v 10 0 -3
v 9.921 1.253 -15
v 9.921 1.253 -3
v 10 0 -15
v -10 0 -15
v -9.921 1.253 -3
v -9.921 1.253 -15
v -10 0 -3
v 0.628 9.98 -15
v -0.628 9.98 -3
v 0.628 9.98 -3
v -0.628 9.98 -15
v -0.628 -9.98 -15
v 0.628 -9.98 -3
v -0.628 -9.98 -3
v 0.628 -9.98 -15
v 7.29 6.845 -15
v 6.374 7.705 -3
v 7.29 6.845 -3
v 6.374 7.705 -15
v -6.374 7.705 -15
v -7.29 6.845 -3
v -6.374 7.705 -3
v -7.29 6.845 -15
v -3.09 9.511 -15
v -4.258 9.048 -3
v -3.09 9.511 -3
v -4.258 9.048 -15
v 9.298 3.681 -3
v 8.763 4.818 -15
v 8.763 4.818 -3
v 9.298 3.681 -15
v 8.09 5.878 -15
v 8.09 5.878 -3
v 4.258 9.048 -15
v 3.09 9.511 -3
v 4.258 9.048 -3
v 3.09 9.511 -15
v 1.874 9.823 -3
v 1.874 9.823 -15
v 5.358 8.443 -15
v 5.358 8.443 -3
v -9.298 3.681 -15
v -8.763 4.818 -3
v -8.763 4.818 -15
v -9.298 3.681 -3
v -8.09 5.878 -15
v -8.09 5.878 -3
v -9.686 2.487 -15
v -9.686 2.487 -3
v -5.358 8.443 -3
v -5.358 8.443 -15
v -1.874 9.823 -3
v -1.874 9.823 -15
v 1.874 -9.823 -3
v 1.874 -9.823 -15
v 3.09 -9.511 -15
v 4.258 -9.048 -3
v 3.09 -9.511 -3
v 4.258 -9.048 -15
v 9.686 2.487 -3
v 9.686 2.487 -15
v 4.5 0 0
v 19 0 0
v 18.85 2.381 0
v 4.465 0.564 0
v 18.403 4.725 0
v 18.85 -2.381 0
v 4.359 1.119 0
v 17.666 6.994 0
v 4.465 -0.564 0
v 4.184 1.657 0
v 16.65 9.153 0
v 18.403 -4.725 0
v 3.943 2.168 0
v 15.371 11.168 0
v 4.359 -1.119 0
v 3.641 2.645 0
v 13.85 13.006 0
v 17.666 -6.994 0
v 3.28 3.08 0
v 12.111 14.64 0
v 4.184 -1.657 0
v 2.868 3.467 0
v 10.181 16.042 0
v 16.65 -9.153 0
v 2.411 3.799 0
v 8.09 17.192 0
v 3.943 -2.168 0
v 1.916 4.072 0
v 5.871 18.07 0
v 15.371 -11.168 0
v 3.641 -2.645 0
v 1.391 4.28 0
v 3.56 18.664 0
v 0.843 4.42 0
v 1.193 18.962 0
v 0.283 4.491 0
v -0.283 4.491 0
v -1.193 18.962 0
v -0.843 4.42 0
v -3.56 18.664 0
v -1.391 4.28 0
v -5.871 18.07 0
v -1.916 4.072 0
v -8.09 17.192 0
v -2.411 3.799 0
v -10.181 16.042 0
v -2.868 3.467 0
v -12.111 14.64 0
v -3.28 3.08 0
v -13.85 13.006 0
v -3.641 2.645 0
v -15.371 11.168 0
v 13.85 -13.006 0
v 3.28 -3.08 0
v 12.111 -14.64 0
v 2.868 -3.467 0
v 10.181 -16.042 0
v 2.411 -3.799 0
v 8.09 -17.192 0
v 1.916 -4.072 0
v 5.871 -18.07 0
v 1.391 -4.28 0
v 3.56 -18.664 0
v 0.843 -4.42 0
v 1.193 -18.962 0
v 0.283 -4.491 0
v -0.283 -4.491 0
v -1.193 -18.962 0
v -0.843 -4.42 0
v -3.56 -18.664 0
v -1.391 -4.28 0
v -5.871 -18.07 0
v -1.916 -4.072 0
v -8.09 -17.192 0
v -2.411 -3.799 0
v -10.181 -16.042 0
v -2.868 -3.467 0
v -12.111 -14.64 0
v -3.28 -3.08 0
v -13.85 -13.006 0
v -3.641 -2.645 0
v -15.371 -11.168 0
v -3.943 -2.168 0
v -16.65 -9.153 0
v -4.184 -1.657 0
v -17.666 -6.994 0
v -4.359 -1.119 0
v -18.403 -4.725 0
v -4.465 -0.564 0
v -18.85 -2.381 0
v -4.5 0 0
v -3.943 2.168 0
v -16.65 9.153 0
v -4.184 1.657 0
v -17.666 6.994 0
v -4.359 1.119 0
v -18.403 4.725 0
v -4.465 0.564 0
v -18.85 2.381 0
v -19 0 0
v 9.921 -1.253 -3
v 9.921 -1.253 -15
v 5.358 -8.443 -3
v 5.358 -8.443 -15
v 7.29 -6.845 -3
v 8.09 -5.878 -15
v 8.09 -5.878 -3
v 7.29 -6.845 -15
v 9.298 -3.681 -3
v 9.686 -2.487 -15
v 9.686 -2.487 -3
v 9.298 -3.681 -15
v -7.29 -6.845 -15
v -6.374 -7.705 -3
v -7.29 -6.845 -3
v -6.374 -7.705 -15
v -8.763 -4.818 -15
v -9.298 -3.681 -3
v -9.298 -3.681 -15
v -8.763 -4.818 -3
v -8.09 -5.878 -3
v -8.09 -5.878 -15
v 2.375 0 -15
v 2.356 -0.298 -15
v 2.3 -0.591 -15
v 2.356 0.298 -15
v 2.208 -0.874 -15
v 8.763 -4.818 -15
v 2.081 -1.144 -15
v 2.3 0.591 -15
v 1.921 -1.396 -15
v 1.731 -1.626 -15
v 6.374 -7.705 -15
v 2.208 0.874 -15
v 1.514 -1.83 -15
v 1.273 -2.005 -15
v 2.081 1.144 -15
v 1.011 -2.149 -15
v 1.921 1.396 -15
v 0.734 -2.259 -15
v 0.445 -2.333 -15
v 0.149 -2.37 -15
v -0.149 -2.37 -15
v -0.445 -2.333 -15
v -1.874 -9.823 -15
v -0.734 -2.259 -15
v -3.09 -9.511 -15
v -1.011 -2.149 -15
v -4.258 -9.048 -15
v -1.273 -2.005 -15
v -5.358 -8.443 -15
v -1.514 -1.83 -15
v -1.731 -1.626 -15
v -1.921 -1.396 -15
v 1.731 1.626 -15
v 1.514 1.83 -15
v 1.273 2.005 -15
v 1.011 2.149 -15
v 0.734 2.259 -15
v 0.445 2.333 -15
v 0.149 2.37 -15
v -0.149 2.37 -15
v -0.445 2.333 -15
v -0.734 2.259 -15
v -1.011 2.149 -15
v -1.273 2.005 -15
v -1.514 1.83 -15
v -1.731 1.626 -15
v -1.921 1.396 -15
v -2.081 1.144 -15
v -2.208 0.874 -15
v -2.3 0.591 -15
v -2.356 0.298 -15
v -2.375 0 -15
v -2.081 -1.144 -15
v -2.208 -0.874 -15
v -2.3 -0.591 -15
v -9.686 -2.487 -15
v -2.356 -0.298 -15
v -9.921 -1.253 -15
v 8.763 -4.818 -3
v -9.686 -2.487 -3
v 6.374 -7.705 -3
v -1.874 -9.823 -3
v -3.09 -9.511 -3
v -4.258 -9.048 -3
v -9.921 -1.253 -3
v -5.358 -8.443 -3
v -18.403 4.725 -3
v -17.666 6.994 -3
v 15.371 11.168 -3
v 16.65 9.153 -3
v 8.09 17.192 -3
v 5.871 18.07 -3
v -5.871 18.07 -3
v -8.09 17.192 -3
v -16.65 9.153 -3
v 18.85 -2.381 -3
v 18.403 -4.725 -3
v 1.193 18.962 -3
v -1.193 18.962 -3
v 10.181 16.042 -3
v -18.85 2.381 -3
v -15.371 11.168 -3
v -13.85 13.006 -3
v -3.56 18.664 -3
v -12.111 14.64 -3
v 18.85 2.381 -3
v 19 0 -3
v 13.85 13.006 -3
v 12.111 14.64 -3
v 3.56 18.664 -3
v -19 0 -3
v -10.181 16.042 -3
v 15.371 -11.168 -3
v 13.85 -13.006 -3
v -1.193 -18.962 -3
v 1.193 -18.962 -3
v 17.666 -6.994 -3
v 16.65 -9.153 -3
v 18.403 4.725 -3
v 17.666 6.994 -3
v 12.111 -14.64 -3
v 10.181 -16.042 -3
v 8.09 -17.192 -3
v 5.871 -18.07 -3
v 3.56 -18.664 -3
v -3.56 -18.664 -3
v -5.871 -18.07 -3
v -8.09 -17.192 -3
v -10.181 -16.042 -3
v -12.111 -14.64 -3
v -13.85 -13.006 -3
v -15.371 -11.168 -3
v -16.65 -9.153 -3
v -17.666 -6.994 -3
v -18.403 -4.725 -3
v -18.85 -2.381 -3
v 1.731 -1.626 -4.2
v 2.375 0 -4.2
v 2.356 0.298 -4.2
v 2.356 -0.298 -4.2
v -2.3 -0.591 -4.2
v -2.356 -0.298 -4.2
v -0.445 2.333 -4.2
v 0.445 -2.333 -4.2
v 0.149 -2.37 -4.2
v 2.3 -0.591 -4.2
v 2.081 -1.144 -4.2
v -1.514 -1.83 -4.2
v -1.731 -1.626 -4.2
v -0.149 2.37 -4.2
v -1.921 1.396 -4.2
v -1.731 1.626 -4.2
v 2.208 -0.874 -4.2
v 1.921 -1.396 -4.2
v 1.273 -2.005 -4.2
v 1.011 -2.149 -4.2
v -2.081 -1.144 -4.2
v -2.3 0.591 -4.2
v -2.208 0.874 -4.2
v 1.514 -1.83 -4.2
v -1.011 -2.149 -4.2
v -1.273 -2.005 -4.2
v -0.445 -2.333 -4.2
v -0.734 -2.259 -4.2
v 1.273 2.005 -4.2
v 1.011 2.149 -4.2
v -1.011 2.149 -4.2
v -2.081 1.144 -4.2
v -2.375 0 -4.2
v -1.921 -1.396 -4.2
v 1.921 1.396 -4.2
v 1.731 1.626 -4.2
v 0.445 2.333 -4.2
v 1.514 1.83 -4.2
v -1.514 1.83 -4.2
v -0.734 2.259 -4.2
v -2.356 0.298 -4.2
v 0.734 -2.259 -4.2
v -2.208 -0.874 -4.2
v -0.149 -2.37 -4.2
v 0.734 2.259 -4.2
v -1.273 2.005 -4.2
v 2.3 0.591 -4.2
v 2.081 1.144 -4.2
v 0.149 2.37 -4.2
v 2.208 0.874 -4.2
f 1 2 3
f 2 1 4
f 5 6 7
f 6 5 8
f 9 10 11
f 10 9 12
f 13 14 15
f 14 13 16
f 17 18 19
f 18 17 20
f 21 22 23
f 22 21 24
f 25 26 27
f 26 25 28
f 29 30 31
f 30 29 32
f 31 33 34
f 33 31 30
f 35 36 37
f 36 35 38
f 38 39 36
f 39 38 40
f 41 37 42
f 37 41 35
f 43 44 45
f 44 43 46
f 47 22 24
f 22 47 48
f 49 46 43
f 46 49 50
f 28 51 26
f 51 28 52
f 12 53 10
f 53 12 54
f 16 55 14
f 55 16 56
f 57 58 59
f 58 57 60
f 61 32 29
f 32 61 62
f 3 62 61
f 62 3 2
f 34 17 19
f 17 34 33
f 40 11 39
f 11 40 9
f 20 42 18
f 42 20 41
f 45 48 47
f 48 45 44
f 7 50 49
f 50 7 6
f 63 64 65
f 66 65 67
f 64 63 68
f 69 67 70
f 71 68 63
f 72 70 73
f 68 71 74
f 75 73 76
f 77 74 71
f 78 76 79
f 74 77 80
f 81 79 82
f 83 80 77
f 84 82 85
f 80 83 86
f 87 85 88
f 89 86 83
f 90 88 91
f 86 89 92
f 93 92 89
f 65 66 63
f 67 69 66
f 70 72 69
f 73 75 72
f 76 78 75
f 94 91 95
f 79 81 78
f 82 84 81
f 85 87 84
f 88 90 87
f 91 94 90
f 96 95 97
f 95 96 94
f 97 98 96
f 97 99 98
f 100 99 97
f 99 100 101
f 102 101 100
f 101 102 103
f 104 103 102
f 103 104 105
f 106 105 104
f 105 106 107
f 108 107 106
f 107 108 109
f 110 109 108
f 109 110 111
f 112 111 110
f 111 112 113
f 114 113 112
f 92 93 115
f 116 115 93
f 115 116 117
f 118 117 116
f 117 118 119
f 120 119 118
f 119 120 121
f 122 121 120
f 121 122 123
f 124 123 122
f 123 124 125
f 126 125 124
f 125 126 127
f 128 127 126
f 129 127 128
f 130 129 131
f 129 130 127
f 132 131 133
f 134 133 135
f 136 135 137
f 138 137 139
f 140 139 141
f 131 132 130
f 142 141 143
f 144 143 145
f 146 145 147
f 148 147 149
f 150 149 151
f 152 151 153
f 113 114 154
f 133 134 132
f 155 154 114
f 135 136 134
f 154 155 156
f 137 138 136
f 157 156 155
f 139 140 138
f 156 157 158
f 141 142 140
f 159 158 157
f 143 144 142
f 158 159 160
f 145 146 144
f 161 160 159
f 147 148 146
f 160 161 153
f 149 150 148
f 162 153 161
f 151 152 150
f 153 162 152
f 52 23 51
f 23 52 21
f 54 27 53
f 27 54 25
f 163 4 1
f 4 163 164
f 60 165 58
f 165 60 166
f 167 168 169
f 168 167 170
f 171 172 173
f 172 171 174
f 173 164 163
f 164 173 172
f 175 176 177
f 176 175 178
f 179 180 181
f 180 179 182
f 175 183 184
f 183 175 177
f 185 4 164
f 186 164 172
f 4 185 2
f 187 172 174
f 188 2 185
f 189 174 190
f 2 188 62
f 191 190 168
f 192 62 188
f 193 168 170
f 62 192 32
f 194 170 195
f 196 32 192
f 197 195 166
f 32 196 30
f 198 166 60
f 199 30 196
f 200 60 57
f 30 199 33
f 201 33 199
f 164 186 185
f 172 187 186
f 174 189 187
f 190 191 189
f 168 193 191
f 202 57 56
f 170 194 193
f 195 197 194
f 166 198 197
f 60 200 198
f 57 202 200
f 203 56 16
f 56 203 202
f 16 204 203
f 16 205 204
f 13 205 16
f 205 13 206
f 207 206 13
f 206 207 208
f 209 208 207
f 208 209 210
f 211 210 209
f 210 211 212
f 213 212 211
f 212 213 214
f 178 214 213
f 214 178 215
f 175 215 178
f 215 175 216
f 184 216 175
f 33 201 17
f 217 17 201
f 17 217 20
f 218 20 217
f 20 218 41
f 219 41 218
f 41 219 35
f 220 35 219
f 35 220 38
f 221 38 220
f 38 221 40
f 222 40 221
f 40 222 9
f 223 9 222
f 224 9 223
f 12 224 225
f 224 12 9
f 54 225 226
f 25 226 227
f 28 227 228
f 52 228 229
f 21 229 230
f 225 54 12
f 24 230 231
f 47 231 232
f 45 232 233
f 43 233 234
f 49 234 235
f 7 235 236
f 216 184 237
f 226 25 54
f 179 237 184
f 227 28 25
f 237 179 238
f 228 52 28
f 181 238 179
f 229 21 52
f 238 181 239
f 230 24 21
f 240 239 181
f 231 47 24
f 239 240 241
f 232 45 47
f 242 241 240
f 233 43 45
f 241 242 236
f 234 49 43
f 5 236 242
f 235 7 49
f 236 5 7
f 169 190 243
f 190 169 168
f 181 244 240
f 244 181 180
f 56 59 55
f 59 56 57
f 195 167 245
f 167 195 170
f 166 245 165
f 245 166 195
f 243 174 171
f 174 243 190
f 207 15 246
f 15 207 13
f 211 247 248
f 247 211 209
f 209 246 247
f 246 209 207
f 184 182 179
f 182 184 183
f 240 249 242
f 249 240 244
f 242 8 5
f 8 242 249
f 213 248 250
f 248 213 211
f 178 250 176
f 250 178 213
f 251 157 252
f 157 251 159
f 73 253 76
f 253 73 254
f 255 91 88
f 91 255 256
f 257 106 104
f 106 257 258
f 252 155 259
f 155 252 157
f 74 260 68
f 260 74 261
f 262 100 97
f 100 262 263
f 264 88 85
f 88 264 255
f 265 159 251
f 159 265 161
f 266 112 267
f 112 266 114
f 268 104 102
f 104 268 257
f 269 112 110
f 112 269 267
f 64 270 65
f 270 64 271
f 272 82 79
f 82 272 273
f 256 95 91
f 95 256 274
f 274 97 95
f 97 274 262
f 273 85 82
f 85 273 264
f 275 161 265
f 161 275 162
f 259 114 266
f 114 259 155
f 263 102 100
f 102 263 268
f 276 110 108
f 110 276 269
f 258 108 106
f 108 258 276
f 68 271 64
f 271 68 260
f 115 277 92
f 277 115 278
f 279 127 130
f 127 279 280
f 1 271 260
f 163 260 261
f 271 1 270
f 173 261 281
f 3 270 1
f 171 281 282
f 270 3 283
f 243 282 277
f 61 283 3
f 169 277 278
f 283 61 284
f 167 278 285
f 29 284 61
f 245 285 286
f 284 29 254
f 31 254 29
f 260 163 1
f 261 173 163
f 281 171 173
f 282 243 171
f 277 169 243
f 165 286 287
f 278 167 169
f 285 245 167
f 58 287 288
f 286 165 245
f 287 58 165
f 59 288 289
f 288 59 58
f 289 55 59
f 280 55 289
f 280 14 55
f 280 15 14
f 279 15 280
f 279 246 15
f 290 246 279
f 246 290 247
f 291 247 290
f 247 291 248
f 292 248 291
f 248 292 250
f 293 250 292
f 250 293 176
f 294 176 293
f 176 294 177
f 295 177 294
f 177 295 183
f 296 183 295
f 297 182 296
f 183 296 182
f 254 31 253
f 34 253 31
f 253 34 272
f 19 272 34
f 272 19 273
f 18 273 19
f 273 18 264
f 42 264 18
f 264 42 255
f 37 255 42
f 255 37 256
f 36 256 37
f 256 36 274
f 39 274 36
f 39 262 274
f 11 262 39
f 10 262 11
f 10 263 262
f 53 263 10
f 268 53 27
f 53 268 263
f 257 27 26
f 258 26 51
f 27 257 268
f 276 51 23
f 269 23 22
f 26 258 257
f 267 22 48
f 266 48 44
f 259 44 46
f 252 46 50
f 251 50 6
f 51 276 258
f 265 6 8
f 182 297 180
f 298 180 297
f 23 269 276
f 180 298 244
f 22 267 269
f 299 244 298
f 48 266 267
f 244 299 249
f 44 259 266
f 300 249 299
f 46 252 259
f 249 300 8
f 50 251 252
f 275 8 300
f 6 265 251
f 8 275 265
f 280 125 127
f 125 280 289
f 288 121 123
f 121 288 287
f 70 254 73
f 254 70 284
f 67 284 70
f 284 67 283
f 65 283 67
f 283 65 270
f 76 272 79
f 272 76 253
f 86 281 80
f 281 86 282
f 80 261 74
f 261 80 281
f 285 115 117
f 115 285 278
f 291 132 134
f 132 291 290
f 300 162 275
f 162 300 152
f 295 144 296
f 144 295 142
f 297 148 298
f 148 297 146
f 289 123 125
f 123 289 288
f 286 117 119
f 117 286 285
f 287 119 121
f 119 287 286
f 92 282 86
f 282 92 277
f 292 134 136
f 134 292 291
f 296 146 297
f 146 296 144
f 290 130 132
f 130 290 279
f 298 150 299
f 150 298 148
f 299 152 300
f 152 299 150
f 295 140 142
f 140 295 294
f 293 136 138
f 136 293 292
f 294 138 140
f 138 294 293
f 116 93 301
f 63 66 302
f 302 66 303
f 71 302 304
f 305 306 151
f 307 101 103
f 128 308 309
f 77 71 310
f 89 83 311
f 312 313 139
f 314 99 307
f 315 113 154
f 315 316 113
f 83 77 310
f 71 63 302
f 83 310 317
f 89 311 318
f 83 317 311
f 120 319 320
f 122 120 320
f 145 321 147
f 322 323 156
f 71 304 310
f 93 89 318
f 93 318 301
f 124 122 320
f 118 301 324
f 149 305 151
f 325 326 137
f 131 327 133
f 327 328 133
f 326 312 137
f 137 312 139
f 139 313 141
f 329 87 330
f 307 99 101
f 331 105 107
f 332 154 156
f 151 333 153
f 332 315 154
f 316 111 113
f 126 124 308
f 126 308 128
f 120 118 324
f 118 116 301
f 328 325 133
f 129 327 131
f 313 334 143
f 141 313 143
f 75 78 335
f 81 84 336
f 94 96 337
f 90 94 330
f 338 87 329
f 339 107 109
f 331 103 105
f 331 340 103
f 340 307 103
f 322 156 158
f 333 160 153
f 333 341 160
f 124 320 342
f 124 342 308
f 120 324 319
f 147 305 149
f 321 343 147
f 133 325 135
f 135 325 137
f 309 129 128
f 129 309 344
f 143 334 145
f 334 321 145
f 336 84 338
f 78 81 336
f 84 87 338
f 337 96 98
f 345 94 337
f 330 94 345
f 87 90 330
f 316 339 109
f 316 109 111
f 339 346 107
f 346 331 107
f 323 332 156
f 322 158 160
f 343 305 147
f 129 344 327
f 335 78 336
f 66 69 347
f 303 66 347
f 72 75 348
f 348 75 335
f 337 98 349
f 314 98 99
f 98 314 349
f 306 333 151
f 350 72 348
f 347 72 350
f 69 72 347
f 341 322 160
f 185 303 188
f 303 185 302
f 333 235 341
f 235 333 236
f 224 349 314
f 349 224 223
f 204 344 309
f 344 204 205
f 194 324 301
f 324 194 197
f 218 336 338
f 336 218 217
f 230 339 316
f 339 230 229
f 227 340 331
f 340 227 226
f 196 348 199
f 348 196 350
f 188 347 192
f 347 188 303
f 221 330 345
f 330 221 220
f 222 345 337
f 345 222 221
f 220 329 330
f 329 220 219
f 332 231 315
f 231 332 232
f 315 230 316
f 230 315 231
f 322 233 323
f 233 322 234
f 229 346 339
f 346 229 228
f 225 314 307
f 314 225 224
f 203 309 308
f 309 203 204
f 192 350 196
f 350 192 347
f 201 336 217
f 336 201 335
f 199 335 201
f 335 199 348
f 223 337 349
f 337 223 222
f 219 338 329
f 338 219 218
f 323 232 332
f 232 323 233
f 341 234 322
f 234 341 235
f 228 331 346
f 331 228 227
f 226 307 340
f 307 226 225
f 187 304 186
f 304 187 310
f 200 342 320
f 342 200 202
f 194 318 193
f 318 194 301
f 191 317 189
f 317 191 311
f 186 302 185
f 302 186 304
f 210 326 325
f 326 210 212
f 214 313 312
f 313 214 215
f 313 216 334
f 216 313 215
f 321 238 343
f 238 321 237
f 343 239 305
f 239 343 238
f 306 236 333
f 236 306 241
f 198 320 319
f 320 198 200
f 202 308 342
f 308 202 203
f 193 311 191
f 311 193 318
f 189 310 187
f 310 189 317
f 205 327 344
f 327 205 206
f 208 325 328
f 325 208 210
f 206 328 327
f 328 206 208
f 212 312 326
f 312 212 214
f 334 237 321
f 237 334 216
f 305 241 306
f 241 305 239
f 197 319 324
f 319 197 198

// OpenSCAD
$fn = 50;


difference() {
	union() {
		translate(v = [0, 0, -15.0000000000]) {
			cylinder(h = 15, r = 10.0000000000);
		}
		translate(v = [0, 0, -3.0000000000]) {
			cylinder(h = 3, r = 19.0000000000);
		}
	}
	union() {
		translate(v = [0, 0, 0]) {
			rotate(a = [0, 0, 0]) {
				difference() {
					union() {
						#translate(v = [0, 0, -15.0000000000]) {
							cylinder(h = 15, r = 2.2500000000);
						}
						#translate(v = [0, 0, -4.2000000000]) {
							cylinder(h = 4.2000000000, r = 10.0000000000, r1 = 2.3750000000, r2 = 4.5000000000);
						}
						#translate(v = [0, 0, -15.0000000000]) {
							cylinder(h = 15, r = 2.3750000000);
						}
						#translate(v = [0, 0, -15.0000000000]) {
							cylinder(h = 15, r = 2.2500000000);
						}
					}
					union();
				}
			}
		}
	}
}
